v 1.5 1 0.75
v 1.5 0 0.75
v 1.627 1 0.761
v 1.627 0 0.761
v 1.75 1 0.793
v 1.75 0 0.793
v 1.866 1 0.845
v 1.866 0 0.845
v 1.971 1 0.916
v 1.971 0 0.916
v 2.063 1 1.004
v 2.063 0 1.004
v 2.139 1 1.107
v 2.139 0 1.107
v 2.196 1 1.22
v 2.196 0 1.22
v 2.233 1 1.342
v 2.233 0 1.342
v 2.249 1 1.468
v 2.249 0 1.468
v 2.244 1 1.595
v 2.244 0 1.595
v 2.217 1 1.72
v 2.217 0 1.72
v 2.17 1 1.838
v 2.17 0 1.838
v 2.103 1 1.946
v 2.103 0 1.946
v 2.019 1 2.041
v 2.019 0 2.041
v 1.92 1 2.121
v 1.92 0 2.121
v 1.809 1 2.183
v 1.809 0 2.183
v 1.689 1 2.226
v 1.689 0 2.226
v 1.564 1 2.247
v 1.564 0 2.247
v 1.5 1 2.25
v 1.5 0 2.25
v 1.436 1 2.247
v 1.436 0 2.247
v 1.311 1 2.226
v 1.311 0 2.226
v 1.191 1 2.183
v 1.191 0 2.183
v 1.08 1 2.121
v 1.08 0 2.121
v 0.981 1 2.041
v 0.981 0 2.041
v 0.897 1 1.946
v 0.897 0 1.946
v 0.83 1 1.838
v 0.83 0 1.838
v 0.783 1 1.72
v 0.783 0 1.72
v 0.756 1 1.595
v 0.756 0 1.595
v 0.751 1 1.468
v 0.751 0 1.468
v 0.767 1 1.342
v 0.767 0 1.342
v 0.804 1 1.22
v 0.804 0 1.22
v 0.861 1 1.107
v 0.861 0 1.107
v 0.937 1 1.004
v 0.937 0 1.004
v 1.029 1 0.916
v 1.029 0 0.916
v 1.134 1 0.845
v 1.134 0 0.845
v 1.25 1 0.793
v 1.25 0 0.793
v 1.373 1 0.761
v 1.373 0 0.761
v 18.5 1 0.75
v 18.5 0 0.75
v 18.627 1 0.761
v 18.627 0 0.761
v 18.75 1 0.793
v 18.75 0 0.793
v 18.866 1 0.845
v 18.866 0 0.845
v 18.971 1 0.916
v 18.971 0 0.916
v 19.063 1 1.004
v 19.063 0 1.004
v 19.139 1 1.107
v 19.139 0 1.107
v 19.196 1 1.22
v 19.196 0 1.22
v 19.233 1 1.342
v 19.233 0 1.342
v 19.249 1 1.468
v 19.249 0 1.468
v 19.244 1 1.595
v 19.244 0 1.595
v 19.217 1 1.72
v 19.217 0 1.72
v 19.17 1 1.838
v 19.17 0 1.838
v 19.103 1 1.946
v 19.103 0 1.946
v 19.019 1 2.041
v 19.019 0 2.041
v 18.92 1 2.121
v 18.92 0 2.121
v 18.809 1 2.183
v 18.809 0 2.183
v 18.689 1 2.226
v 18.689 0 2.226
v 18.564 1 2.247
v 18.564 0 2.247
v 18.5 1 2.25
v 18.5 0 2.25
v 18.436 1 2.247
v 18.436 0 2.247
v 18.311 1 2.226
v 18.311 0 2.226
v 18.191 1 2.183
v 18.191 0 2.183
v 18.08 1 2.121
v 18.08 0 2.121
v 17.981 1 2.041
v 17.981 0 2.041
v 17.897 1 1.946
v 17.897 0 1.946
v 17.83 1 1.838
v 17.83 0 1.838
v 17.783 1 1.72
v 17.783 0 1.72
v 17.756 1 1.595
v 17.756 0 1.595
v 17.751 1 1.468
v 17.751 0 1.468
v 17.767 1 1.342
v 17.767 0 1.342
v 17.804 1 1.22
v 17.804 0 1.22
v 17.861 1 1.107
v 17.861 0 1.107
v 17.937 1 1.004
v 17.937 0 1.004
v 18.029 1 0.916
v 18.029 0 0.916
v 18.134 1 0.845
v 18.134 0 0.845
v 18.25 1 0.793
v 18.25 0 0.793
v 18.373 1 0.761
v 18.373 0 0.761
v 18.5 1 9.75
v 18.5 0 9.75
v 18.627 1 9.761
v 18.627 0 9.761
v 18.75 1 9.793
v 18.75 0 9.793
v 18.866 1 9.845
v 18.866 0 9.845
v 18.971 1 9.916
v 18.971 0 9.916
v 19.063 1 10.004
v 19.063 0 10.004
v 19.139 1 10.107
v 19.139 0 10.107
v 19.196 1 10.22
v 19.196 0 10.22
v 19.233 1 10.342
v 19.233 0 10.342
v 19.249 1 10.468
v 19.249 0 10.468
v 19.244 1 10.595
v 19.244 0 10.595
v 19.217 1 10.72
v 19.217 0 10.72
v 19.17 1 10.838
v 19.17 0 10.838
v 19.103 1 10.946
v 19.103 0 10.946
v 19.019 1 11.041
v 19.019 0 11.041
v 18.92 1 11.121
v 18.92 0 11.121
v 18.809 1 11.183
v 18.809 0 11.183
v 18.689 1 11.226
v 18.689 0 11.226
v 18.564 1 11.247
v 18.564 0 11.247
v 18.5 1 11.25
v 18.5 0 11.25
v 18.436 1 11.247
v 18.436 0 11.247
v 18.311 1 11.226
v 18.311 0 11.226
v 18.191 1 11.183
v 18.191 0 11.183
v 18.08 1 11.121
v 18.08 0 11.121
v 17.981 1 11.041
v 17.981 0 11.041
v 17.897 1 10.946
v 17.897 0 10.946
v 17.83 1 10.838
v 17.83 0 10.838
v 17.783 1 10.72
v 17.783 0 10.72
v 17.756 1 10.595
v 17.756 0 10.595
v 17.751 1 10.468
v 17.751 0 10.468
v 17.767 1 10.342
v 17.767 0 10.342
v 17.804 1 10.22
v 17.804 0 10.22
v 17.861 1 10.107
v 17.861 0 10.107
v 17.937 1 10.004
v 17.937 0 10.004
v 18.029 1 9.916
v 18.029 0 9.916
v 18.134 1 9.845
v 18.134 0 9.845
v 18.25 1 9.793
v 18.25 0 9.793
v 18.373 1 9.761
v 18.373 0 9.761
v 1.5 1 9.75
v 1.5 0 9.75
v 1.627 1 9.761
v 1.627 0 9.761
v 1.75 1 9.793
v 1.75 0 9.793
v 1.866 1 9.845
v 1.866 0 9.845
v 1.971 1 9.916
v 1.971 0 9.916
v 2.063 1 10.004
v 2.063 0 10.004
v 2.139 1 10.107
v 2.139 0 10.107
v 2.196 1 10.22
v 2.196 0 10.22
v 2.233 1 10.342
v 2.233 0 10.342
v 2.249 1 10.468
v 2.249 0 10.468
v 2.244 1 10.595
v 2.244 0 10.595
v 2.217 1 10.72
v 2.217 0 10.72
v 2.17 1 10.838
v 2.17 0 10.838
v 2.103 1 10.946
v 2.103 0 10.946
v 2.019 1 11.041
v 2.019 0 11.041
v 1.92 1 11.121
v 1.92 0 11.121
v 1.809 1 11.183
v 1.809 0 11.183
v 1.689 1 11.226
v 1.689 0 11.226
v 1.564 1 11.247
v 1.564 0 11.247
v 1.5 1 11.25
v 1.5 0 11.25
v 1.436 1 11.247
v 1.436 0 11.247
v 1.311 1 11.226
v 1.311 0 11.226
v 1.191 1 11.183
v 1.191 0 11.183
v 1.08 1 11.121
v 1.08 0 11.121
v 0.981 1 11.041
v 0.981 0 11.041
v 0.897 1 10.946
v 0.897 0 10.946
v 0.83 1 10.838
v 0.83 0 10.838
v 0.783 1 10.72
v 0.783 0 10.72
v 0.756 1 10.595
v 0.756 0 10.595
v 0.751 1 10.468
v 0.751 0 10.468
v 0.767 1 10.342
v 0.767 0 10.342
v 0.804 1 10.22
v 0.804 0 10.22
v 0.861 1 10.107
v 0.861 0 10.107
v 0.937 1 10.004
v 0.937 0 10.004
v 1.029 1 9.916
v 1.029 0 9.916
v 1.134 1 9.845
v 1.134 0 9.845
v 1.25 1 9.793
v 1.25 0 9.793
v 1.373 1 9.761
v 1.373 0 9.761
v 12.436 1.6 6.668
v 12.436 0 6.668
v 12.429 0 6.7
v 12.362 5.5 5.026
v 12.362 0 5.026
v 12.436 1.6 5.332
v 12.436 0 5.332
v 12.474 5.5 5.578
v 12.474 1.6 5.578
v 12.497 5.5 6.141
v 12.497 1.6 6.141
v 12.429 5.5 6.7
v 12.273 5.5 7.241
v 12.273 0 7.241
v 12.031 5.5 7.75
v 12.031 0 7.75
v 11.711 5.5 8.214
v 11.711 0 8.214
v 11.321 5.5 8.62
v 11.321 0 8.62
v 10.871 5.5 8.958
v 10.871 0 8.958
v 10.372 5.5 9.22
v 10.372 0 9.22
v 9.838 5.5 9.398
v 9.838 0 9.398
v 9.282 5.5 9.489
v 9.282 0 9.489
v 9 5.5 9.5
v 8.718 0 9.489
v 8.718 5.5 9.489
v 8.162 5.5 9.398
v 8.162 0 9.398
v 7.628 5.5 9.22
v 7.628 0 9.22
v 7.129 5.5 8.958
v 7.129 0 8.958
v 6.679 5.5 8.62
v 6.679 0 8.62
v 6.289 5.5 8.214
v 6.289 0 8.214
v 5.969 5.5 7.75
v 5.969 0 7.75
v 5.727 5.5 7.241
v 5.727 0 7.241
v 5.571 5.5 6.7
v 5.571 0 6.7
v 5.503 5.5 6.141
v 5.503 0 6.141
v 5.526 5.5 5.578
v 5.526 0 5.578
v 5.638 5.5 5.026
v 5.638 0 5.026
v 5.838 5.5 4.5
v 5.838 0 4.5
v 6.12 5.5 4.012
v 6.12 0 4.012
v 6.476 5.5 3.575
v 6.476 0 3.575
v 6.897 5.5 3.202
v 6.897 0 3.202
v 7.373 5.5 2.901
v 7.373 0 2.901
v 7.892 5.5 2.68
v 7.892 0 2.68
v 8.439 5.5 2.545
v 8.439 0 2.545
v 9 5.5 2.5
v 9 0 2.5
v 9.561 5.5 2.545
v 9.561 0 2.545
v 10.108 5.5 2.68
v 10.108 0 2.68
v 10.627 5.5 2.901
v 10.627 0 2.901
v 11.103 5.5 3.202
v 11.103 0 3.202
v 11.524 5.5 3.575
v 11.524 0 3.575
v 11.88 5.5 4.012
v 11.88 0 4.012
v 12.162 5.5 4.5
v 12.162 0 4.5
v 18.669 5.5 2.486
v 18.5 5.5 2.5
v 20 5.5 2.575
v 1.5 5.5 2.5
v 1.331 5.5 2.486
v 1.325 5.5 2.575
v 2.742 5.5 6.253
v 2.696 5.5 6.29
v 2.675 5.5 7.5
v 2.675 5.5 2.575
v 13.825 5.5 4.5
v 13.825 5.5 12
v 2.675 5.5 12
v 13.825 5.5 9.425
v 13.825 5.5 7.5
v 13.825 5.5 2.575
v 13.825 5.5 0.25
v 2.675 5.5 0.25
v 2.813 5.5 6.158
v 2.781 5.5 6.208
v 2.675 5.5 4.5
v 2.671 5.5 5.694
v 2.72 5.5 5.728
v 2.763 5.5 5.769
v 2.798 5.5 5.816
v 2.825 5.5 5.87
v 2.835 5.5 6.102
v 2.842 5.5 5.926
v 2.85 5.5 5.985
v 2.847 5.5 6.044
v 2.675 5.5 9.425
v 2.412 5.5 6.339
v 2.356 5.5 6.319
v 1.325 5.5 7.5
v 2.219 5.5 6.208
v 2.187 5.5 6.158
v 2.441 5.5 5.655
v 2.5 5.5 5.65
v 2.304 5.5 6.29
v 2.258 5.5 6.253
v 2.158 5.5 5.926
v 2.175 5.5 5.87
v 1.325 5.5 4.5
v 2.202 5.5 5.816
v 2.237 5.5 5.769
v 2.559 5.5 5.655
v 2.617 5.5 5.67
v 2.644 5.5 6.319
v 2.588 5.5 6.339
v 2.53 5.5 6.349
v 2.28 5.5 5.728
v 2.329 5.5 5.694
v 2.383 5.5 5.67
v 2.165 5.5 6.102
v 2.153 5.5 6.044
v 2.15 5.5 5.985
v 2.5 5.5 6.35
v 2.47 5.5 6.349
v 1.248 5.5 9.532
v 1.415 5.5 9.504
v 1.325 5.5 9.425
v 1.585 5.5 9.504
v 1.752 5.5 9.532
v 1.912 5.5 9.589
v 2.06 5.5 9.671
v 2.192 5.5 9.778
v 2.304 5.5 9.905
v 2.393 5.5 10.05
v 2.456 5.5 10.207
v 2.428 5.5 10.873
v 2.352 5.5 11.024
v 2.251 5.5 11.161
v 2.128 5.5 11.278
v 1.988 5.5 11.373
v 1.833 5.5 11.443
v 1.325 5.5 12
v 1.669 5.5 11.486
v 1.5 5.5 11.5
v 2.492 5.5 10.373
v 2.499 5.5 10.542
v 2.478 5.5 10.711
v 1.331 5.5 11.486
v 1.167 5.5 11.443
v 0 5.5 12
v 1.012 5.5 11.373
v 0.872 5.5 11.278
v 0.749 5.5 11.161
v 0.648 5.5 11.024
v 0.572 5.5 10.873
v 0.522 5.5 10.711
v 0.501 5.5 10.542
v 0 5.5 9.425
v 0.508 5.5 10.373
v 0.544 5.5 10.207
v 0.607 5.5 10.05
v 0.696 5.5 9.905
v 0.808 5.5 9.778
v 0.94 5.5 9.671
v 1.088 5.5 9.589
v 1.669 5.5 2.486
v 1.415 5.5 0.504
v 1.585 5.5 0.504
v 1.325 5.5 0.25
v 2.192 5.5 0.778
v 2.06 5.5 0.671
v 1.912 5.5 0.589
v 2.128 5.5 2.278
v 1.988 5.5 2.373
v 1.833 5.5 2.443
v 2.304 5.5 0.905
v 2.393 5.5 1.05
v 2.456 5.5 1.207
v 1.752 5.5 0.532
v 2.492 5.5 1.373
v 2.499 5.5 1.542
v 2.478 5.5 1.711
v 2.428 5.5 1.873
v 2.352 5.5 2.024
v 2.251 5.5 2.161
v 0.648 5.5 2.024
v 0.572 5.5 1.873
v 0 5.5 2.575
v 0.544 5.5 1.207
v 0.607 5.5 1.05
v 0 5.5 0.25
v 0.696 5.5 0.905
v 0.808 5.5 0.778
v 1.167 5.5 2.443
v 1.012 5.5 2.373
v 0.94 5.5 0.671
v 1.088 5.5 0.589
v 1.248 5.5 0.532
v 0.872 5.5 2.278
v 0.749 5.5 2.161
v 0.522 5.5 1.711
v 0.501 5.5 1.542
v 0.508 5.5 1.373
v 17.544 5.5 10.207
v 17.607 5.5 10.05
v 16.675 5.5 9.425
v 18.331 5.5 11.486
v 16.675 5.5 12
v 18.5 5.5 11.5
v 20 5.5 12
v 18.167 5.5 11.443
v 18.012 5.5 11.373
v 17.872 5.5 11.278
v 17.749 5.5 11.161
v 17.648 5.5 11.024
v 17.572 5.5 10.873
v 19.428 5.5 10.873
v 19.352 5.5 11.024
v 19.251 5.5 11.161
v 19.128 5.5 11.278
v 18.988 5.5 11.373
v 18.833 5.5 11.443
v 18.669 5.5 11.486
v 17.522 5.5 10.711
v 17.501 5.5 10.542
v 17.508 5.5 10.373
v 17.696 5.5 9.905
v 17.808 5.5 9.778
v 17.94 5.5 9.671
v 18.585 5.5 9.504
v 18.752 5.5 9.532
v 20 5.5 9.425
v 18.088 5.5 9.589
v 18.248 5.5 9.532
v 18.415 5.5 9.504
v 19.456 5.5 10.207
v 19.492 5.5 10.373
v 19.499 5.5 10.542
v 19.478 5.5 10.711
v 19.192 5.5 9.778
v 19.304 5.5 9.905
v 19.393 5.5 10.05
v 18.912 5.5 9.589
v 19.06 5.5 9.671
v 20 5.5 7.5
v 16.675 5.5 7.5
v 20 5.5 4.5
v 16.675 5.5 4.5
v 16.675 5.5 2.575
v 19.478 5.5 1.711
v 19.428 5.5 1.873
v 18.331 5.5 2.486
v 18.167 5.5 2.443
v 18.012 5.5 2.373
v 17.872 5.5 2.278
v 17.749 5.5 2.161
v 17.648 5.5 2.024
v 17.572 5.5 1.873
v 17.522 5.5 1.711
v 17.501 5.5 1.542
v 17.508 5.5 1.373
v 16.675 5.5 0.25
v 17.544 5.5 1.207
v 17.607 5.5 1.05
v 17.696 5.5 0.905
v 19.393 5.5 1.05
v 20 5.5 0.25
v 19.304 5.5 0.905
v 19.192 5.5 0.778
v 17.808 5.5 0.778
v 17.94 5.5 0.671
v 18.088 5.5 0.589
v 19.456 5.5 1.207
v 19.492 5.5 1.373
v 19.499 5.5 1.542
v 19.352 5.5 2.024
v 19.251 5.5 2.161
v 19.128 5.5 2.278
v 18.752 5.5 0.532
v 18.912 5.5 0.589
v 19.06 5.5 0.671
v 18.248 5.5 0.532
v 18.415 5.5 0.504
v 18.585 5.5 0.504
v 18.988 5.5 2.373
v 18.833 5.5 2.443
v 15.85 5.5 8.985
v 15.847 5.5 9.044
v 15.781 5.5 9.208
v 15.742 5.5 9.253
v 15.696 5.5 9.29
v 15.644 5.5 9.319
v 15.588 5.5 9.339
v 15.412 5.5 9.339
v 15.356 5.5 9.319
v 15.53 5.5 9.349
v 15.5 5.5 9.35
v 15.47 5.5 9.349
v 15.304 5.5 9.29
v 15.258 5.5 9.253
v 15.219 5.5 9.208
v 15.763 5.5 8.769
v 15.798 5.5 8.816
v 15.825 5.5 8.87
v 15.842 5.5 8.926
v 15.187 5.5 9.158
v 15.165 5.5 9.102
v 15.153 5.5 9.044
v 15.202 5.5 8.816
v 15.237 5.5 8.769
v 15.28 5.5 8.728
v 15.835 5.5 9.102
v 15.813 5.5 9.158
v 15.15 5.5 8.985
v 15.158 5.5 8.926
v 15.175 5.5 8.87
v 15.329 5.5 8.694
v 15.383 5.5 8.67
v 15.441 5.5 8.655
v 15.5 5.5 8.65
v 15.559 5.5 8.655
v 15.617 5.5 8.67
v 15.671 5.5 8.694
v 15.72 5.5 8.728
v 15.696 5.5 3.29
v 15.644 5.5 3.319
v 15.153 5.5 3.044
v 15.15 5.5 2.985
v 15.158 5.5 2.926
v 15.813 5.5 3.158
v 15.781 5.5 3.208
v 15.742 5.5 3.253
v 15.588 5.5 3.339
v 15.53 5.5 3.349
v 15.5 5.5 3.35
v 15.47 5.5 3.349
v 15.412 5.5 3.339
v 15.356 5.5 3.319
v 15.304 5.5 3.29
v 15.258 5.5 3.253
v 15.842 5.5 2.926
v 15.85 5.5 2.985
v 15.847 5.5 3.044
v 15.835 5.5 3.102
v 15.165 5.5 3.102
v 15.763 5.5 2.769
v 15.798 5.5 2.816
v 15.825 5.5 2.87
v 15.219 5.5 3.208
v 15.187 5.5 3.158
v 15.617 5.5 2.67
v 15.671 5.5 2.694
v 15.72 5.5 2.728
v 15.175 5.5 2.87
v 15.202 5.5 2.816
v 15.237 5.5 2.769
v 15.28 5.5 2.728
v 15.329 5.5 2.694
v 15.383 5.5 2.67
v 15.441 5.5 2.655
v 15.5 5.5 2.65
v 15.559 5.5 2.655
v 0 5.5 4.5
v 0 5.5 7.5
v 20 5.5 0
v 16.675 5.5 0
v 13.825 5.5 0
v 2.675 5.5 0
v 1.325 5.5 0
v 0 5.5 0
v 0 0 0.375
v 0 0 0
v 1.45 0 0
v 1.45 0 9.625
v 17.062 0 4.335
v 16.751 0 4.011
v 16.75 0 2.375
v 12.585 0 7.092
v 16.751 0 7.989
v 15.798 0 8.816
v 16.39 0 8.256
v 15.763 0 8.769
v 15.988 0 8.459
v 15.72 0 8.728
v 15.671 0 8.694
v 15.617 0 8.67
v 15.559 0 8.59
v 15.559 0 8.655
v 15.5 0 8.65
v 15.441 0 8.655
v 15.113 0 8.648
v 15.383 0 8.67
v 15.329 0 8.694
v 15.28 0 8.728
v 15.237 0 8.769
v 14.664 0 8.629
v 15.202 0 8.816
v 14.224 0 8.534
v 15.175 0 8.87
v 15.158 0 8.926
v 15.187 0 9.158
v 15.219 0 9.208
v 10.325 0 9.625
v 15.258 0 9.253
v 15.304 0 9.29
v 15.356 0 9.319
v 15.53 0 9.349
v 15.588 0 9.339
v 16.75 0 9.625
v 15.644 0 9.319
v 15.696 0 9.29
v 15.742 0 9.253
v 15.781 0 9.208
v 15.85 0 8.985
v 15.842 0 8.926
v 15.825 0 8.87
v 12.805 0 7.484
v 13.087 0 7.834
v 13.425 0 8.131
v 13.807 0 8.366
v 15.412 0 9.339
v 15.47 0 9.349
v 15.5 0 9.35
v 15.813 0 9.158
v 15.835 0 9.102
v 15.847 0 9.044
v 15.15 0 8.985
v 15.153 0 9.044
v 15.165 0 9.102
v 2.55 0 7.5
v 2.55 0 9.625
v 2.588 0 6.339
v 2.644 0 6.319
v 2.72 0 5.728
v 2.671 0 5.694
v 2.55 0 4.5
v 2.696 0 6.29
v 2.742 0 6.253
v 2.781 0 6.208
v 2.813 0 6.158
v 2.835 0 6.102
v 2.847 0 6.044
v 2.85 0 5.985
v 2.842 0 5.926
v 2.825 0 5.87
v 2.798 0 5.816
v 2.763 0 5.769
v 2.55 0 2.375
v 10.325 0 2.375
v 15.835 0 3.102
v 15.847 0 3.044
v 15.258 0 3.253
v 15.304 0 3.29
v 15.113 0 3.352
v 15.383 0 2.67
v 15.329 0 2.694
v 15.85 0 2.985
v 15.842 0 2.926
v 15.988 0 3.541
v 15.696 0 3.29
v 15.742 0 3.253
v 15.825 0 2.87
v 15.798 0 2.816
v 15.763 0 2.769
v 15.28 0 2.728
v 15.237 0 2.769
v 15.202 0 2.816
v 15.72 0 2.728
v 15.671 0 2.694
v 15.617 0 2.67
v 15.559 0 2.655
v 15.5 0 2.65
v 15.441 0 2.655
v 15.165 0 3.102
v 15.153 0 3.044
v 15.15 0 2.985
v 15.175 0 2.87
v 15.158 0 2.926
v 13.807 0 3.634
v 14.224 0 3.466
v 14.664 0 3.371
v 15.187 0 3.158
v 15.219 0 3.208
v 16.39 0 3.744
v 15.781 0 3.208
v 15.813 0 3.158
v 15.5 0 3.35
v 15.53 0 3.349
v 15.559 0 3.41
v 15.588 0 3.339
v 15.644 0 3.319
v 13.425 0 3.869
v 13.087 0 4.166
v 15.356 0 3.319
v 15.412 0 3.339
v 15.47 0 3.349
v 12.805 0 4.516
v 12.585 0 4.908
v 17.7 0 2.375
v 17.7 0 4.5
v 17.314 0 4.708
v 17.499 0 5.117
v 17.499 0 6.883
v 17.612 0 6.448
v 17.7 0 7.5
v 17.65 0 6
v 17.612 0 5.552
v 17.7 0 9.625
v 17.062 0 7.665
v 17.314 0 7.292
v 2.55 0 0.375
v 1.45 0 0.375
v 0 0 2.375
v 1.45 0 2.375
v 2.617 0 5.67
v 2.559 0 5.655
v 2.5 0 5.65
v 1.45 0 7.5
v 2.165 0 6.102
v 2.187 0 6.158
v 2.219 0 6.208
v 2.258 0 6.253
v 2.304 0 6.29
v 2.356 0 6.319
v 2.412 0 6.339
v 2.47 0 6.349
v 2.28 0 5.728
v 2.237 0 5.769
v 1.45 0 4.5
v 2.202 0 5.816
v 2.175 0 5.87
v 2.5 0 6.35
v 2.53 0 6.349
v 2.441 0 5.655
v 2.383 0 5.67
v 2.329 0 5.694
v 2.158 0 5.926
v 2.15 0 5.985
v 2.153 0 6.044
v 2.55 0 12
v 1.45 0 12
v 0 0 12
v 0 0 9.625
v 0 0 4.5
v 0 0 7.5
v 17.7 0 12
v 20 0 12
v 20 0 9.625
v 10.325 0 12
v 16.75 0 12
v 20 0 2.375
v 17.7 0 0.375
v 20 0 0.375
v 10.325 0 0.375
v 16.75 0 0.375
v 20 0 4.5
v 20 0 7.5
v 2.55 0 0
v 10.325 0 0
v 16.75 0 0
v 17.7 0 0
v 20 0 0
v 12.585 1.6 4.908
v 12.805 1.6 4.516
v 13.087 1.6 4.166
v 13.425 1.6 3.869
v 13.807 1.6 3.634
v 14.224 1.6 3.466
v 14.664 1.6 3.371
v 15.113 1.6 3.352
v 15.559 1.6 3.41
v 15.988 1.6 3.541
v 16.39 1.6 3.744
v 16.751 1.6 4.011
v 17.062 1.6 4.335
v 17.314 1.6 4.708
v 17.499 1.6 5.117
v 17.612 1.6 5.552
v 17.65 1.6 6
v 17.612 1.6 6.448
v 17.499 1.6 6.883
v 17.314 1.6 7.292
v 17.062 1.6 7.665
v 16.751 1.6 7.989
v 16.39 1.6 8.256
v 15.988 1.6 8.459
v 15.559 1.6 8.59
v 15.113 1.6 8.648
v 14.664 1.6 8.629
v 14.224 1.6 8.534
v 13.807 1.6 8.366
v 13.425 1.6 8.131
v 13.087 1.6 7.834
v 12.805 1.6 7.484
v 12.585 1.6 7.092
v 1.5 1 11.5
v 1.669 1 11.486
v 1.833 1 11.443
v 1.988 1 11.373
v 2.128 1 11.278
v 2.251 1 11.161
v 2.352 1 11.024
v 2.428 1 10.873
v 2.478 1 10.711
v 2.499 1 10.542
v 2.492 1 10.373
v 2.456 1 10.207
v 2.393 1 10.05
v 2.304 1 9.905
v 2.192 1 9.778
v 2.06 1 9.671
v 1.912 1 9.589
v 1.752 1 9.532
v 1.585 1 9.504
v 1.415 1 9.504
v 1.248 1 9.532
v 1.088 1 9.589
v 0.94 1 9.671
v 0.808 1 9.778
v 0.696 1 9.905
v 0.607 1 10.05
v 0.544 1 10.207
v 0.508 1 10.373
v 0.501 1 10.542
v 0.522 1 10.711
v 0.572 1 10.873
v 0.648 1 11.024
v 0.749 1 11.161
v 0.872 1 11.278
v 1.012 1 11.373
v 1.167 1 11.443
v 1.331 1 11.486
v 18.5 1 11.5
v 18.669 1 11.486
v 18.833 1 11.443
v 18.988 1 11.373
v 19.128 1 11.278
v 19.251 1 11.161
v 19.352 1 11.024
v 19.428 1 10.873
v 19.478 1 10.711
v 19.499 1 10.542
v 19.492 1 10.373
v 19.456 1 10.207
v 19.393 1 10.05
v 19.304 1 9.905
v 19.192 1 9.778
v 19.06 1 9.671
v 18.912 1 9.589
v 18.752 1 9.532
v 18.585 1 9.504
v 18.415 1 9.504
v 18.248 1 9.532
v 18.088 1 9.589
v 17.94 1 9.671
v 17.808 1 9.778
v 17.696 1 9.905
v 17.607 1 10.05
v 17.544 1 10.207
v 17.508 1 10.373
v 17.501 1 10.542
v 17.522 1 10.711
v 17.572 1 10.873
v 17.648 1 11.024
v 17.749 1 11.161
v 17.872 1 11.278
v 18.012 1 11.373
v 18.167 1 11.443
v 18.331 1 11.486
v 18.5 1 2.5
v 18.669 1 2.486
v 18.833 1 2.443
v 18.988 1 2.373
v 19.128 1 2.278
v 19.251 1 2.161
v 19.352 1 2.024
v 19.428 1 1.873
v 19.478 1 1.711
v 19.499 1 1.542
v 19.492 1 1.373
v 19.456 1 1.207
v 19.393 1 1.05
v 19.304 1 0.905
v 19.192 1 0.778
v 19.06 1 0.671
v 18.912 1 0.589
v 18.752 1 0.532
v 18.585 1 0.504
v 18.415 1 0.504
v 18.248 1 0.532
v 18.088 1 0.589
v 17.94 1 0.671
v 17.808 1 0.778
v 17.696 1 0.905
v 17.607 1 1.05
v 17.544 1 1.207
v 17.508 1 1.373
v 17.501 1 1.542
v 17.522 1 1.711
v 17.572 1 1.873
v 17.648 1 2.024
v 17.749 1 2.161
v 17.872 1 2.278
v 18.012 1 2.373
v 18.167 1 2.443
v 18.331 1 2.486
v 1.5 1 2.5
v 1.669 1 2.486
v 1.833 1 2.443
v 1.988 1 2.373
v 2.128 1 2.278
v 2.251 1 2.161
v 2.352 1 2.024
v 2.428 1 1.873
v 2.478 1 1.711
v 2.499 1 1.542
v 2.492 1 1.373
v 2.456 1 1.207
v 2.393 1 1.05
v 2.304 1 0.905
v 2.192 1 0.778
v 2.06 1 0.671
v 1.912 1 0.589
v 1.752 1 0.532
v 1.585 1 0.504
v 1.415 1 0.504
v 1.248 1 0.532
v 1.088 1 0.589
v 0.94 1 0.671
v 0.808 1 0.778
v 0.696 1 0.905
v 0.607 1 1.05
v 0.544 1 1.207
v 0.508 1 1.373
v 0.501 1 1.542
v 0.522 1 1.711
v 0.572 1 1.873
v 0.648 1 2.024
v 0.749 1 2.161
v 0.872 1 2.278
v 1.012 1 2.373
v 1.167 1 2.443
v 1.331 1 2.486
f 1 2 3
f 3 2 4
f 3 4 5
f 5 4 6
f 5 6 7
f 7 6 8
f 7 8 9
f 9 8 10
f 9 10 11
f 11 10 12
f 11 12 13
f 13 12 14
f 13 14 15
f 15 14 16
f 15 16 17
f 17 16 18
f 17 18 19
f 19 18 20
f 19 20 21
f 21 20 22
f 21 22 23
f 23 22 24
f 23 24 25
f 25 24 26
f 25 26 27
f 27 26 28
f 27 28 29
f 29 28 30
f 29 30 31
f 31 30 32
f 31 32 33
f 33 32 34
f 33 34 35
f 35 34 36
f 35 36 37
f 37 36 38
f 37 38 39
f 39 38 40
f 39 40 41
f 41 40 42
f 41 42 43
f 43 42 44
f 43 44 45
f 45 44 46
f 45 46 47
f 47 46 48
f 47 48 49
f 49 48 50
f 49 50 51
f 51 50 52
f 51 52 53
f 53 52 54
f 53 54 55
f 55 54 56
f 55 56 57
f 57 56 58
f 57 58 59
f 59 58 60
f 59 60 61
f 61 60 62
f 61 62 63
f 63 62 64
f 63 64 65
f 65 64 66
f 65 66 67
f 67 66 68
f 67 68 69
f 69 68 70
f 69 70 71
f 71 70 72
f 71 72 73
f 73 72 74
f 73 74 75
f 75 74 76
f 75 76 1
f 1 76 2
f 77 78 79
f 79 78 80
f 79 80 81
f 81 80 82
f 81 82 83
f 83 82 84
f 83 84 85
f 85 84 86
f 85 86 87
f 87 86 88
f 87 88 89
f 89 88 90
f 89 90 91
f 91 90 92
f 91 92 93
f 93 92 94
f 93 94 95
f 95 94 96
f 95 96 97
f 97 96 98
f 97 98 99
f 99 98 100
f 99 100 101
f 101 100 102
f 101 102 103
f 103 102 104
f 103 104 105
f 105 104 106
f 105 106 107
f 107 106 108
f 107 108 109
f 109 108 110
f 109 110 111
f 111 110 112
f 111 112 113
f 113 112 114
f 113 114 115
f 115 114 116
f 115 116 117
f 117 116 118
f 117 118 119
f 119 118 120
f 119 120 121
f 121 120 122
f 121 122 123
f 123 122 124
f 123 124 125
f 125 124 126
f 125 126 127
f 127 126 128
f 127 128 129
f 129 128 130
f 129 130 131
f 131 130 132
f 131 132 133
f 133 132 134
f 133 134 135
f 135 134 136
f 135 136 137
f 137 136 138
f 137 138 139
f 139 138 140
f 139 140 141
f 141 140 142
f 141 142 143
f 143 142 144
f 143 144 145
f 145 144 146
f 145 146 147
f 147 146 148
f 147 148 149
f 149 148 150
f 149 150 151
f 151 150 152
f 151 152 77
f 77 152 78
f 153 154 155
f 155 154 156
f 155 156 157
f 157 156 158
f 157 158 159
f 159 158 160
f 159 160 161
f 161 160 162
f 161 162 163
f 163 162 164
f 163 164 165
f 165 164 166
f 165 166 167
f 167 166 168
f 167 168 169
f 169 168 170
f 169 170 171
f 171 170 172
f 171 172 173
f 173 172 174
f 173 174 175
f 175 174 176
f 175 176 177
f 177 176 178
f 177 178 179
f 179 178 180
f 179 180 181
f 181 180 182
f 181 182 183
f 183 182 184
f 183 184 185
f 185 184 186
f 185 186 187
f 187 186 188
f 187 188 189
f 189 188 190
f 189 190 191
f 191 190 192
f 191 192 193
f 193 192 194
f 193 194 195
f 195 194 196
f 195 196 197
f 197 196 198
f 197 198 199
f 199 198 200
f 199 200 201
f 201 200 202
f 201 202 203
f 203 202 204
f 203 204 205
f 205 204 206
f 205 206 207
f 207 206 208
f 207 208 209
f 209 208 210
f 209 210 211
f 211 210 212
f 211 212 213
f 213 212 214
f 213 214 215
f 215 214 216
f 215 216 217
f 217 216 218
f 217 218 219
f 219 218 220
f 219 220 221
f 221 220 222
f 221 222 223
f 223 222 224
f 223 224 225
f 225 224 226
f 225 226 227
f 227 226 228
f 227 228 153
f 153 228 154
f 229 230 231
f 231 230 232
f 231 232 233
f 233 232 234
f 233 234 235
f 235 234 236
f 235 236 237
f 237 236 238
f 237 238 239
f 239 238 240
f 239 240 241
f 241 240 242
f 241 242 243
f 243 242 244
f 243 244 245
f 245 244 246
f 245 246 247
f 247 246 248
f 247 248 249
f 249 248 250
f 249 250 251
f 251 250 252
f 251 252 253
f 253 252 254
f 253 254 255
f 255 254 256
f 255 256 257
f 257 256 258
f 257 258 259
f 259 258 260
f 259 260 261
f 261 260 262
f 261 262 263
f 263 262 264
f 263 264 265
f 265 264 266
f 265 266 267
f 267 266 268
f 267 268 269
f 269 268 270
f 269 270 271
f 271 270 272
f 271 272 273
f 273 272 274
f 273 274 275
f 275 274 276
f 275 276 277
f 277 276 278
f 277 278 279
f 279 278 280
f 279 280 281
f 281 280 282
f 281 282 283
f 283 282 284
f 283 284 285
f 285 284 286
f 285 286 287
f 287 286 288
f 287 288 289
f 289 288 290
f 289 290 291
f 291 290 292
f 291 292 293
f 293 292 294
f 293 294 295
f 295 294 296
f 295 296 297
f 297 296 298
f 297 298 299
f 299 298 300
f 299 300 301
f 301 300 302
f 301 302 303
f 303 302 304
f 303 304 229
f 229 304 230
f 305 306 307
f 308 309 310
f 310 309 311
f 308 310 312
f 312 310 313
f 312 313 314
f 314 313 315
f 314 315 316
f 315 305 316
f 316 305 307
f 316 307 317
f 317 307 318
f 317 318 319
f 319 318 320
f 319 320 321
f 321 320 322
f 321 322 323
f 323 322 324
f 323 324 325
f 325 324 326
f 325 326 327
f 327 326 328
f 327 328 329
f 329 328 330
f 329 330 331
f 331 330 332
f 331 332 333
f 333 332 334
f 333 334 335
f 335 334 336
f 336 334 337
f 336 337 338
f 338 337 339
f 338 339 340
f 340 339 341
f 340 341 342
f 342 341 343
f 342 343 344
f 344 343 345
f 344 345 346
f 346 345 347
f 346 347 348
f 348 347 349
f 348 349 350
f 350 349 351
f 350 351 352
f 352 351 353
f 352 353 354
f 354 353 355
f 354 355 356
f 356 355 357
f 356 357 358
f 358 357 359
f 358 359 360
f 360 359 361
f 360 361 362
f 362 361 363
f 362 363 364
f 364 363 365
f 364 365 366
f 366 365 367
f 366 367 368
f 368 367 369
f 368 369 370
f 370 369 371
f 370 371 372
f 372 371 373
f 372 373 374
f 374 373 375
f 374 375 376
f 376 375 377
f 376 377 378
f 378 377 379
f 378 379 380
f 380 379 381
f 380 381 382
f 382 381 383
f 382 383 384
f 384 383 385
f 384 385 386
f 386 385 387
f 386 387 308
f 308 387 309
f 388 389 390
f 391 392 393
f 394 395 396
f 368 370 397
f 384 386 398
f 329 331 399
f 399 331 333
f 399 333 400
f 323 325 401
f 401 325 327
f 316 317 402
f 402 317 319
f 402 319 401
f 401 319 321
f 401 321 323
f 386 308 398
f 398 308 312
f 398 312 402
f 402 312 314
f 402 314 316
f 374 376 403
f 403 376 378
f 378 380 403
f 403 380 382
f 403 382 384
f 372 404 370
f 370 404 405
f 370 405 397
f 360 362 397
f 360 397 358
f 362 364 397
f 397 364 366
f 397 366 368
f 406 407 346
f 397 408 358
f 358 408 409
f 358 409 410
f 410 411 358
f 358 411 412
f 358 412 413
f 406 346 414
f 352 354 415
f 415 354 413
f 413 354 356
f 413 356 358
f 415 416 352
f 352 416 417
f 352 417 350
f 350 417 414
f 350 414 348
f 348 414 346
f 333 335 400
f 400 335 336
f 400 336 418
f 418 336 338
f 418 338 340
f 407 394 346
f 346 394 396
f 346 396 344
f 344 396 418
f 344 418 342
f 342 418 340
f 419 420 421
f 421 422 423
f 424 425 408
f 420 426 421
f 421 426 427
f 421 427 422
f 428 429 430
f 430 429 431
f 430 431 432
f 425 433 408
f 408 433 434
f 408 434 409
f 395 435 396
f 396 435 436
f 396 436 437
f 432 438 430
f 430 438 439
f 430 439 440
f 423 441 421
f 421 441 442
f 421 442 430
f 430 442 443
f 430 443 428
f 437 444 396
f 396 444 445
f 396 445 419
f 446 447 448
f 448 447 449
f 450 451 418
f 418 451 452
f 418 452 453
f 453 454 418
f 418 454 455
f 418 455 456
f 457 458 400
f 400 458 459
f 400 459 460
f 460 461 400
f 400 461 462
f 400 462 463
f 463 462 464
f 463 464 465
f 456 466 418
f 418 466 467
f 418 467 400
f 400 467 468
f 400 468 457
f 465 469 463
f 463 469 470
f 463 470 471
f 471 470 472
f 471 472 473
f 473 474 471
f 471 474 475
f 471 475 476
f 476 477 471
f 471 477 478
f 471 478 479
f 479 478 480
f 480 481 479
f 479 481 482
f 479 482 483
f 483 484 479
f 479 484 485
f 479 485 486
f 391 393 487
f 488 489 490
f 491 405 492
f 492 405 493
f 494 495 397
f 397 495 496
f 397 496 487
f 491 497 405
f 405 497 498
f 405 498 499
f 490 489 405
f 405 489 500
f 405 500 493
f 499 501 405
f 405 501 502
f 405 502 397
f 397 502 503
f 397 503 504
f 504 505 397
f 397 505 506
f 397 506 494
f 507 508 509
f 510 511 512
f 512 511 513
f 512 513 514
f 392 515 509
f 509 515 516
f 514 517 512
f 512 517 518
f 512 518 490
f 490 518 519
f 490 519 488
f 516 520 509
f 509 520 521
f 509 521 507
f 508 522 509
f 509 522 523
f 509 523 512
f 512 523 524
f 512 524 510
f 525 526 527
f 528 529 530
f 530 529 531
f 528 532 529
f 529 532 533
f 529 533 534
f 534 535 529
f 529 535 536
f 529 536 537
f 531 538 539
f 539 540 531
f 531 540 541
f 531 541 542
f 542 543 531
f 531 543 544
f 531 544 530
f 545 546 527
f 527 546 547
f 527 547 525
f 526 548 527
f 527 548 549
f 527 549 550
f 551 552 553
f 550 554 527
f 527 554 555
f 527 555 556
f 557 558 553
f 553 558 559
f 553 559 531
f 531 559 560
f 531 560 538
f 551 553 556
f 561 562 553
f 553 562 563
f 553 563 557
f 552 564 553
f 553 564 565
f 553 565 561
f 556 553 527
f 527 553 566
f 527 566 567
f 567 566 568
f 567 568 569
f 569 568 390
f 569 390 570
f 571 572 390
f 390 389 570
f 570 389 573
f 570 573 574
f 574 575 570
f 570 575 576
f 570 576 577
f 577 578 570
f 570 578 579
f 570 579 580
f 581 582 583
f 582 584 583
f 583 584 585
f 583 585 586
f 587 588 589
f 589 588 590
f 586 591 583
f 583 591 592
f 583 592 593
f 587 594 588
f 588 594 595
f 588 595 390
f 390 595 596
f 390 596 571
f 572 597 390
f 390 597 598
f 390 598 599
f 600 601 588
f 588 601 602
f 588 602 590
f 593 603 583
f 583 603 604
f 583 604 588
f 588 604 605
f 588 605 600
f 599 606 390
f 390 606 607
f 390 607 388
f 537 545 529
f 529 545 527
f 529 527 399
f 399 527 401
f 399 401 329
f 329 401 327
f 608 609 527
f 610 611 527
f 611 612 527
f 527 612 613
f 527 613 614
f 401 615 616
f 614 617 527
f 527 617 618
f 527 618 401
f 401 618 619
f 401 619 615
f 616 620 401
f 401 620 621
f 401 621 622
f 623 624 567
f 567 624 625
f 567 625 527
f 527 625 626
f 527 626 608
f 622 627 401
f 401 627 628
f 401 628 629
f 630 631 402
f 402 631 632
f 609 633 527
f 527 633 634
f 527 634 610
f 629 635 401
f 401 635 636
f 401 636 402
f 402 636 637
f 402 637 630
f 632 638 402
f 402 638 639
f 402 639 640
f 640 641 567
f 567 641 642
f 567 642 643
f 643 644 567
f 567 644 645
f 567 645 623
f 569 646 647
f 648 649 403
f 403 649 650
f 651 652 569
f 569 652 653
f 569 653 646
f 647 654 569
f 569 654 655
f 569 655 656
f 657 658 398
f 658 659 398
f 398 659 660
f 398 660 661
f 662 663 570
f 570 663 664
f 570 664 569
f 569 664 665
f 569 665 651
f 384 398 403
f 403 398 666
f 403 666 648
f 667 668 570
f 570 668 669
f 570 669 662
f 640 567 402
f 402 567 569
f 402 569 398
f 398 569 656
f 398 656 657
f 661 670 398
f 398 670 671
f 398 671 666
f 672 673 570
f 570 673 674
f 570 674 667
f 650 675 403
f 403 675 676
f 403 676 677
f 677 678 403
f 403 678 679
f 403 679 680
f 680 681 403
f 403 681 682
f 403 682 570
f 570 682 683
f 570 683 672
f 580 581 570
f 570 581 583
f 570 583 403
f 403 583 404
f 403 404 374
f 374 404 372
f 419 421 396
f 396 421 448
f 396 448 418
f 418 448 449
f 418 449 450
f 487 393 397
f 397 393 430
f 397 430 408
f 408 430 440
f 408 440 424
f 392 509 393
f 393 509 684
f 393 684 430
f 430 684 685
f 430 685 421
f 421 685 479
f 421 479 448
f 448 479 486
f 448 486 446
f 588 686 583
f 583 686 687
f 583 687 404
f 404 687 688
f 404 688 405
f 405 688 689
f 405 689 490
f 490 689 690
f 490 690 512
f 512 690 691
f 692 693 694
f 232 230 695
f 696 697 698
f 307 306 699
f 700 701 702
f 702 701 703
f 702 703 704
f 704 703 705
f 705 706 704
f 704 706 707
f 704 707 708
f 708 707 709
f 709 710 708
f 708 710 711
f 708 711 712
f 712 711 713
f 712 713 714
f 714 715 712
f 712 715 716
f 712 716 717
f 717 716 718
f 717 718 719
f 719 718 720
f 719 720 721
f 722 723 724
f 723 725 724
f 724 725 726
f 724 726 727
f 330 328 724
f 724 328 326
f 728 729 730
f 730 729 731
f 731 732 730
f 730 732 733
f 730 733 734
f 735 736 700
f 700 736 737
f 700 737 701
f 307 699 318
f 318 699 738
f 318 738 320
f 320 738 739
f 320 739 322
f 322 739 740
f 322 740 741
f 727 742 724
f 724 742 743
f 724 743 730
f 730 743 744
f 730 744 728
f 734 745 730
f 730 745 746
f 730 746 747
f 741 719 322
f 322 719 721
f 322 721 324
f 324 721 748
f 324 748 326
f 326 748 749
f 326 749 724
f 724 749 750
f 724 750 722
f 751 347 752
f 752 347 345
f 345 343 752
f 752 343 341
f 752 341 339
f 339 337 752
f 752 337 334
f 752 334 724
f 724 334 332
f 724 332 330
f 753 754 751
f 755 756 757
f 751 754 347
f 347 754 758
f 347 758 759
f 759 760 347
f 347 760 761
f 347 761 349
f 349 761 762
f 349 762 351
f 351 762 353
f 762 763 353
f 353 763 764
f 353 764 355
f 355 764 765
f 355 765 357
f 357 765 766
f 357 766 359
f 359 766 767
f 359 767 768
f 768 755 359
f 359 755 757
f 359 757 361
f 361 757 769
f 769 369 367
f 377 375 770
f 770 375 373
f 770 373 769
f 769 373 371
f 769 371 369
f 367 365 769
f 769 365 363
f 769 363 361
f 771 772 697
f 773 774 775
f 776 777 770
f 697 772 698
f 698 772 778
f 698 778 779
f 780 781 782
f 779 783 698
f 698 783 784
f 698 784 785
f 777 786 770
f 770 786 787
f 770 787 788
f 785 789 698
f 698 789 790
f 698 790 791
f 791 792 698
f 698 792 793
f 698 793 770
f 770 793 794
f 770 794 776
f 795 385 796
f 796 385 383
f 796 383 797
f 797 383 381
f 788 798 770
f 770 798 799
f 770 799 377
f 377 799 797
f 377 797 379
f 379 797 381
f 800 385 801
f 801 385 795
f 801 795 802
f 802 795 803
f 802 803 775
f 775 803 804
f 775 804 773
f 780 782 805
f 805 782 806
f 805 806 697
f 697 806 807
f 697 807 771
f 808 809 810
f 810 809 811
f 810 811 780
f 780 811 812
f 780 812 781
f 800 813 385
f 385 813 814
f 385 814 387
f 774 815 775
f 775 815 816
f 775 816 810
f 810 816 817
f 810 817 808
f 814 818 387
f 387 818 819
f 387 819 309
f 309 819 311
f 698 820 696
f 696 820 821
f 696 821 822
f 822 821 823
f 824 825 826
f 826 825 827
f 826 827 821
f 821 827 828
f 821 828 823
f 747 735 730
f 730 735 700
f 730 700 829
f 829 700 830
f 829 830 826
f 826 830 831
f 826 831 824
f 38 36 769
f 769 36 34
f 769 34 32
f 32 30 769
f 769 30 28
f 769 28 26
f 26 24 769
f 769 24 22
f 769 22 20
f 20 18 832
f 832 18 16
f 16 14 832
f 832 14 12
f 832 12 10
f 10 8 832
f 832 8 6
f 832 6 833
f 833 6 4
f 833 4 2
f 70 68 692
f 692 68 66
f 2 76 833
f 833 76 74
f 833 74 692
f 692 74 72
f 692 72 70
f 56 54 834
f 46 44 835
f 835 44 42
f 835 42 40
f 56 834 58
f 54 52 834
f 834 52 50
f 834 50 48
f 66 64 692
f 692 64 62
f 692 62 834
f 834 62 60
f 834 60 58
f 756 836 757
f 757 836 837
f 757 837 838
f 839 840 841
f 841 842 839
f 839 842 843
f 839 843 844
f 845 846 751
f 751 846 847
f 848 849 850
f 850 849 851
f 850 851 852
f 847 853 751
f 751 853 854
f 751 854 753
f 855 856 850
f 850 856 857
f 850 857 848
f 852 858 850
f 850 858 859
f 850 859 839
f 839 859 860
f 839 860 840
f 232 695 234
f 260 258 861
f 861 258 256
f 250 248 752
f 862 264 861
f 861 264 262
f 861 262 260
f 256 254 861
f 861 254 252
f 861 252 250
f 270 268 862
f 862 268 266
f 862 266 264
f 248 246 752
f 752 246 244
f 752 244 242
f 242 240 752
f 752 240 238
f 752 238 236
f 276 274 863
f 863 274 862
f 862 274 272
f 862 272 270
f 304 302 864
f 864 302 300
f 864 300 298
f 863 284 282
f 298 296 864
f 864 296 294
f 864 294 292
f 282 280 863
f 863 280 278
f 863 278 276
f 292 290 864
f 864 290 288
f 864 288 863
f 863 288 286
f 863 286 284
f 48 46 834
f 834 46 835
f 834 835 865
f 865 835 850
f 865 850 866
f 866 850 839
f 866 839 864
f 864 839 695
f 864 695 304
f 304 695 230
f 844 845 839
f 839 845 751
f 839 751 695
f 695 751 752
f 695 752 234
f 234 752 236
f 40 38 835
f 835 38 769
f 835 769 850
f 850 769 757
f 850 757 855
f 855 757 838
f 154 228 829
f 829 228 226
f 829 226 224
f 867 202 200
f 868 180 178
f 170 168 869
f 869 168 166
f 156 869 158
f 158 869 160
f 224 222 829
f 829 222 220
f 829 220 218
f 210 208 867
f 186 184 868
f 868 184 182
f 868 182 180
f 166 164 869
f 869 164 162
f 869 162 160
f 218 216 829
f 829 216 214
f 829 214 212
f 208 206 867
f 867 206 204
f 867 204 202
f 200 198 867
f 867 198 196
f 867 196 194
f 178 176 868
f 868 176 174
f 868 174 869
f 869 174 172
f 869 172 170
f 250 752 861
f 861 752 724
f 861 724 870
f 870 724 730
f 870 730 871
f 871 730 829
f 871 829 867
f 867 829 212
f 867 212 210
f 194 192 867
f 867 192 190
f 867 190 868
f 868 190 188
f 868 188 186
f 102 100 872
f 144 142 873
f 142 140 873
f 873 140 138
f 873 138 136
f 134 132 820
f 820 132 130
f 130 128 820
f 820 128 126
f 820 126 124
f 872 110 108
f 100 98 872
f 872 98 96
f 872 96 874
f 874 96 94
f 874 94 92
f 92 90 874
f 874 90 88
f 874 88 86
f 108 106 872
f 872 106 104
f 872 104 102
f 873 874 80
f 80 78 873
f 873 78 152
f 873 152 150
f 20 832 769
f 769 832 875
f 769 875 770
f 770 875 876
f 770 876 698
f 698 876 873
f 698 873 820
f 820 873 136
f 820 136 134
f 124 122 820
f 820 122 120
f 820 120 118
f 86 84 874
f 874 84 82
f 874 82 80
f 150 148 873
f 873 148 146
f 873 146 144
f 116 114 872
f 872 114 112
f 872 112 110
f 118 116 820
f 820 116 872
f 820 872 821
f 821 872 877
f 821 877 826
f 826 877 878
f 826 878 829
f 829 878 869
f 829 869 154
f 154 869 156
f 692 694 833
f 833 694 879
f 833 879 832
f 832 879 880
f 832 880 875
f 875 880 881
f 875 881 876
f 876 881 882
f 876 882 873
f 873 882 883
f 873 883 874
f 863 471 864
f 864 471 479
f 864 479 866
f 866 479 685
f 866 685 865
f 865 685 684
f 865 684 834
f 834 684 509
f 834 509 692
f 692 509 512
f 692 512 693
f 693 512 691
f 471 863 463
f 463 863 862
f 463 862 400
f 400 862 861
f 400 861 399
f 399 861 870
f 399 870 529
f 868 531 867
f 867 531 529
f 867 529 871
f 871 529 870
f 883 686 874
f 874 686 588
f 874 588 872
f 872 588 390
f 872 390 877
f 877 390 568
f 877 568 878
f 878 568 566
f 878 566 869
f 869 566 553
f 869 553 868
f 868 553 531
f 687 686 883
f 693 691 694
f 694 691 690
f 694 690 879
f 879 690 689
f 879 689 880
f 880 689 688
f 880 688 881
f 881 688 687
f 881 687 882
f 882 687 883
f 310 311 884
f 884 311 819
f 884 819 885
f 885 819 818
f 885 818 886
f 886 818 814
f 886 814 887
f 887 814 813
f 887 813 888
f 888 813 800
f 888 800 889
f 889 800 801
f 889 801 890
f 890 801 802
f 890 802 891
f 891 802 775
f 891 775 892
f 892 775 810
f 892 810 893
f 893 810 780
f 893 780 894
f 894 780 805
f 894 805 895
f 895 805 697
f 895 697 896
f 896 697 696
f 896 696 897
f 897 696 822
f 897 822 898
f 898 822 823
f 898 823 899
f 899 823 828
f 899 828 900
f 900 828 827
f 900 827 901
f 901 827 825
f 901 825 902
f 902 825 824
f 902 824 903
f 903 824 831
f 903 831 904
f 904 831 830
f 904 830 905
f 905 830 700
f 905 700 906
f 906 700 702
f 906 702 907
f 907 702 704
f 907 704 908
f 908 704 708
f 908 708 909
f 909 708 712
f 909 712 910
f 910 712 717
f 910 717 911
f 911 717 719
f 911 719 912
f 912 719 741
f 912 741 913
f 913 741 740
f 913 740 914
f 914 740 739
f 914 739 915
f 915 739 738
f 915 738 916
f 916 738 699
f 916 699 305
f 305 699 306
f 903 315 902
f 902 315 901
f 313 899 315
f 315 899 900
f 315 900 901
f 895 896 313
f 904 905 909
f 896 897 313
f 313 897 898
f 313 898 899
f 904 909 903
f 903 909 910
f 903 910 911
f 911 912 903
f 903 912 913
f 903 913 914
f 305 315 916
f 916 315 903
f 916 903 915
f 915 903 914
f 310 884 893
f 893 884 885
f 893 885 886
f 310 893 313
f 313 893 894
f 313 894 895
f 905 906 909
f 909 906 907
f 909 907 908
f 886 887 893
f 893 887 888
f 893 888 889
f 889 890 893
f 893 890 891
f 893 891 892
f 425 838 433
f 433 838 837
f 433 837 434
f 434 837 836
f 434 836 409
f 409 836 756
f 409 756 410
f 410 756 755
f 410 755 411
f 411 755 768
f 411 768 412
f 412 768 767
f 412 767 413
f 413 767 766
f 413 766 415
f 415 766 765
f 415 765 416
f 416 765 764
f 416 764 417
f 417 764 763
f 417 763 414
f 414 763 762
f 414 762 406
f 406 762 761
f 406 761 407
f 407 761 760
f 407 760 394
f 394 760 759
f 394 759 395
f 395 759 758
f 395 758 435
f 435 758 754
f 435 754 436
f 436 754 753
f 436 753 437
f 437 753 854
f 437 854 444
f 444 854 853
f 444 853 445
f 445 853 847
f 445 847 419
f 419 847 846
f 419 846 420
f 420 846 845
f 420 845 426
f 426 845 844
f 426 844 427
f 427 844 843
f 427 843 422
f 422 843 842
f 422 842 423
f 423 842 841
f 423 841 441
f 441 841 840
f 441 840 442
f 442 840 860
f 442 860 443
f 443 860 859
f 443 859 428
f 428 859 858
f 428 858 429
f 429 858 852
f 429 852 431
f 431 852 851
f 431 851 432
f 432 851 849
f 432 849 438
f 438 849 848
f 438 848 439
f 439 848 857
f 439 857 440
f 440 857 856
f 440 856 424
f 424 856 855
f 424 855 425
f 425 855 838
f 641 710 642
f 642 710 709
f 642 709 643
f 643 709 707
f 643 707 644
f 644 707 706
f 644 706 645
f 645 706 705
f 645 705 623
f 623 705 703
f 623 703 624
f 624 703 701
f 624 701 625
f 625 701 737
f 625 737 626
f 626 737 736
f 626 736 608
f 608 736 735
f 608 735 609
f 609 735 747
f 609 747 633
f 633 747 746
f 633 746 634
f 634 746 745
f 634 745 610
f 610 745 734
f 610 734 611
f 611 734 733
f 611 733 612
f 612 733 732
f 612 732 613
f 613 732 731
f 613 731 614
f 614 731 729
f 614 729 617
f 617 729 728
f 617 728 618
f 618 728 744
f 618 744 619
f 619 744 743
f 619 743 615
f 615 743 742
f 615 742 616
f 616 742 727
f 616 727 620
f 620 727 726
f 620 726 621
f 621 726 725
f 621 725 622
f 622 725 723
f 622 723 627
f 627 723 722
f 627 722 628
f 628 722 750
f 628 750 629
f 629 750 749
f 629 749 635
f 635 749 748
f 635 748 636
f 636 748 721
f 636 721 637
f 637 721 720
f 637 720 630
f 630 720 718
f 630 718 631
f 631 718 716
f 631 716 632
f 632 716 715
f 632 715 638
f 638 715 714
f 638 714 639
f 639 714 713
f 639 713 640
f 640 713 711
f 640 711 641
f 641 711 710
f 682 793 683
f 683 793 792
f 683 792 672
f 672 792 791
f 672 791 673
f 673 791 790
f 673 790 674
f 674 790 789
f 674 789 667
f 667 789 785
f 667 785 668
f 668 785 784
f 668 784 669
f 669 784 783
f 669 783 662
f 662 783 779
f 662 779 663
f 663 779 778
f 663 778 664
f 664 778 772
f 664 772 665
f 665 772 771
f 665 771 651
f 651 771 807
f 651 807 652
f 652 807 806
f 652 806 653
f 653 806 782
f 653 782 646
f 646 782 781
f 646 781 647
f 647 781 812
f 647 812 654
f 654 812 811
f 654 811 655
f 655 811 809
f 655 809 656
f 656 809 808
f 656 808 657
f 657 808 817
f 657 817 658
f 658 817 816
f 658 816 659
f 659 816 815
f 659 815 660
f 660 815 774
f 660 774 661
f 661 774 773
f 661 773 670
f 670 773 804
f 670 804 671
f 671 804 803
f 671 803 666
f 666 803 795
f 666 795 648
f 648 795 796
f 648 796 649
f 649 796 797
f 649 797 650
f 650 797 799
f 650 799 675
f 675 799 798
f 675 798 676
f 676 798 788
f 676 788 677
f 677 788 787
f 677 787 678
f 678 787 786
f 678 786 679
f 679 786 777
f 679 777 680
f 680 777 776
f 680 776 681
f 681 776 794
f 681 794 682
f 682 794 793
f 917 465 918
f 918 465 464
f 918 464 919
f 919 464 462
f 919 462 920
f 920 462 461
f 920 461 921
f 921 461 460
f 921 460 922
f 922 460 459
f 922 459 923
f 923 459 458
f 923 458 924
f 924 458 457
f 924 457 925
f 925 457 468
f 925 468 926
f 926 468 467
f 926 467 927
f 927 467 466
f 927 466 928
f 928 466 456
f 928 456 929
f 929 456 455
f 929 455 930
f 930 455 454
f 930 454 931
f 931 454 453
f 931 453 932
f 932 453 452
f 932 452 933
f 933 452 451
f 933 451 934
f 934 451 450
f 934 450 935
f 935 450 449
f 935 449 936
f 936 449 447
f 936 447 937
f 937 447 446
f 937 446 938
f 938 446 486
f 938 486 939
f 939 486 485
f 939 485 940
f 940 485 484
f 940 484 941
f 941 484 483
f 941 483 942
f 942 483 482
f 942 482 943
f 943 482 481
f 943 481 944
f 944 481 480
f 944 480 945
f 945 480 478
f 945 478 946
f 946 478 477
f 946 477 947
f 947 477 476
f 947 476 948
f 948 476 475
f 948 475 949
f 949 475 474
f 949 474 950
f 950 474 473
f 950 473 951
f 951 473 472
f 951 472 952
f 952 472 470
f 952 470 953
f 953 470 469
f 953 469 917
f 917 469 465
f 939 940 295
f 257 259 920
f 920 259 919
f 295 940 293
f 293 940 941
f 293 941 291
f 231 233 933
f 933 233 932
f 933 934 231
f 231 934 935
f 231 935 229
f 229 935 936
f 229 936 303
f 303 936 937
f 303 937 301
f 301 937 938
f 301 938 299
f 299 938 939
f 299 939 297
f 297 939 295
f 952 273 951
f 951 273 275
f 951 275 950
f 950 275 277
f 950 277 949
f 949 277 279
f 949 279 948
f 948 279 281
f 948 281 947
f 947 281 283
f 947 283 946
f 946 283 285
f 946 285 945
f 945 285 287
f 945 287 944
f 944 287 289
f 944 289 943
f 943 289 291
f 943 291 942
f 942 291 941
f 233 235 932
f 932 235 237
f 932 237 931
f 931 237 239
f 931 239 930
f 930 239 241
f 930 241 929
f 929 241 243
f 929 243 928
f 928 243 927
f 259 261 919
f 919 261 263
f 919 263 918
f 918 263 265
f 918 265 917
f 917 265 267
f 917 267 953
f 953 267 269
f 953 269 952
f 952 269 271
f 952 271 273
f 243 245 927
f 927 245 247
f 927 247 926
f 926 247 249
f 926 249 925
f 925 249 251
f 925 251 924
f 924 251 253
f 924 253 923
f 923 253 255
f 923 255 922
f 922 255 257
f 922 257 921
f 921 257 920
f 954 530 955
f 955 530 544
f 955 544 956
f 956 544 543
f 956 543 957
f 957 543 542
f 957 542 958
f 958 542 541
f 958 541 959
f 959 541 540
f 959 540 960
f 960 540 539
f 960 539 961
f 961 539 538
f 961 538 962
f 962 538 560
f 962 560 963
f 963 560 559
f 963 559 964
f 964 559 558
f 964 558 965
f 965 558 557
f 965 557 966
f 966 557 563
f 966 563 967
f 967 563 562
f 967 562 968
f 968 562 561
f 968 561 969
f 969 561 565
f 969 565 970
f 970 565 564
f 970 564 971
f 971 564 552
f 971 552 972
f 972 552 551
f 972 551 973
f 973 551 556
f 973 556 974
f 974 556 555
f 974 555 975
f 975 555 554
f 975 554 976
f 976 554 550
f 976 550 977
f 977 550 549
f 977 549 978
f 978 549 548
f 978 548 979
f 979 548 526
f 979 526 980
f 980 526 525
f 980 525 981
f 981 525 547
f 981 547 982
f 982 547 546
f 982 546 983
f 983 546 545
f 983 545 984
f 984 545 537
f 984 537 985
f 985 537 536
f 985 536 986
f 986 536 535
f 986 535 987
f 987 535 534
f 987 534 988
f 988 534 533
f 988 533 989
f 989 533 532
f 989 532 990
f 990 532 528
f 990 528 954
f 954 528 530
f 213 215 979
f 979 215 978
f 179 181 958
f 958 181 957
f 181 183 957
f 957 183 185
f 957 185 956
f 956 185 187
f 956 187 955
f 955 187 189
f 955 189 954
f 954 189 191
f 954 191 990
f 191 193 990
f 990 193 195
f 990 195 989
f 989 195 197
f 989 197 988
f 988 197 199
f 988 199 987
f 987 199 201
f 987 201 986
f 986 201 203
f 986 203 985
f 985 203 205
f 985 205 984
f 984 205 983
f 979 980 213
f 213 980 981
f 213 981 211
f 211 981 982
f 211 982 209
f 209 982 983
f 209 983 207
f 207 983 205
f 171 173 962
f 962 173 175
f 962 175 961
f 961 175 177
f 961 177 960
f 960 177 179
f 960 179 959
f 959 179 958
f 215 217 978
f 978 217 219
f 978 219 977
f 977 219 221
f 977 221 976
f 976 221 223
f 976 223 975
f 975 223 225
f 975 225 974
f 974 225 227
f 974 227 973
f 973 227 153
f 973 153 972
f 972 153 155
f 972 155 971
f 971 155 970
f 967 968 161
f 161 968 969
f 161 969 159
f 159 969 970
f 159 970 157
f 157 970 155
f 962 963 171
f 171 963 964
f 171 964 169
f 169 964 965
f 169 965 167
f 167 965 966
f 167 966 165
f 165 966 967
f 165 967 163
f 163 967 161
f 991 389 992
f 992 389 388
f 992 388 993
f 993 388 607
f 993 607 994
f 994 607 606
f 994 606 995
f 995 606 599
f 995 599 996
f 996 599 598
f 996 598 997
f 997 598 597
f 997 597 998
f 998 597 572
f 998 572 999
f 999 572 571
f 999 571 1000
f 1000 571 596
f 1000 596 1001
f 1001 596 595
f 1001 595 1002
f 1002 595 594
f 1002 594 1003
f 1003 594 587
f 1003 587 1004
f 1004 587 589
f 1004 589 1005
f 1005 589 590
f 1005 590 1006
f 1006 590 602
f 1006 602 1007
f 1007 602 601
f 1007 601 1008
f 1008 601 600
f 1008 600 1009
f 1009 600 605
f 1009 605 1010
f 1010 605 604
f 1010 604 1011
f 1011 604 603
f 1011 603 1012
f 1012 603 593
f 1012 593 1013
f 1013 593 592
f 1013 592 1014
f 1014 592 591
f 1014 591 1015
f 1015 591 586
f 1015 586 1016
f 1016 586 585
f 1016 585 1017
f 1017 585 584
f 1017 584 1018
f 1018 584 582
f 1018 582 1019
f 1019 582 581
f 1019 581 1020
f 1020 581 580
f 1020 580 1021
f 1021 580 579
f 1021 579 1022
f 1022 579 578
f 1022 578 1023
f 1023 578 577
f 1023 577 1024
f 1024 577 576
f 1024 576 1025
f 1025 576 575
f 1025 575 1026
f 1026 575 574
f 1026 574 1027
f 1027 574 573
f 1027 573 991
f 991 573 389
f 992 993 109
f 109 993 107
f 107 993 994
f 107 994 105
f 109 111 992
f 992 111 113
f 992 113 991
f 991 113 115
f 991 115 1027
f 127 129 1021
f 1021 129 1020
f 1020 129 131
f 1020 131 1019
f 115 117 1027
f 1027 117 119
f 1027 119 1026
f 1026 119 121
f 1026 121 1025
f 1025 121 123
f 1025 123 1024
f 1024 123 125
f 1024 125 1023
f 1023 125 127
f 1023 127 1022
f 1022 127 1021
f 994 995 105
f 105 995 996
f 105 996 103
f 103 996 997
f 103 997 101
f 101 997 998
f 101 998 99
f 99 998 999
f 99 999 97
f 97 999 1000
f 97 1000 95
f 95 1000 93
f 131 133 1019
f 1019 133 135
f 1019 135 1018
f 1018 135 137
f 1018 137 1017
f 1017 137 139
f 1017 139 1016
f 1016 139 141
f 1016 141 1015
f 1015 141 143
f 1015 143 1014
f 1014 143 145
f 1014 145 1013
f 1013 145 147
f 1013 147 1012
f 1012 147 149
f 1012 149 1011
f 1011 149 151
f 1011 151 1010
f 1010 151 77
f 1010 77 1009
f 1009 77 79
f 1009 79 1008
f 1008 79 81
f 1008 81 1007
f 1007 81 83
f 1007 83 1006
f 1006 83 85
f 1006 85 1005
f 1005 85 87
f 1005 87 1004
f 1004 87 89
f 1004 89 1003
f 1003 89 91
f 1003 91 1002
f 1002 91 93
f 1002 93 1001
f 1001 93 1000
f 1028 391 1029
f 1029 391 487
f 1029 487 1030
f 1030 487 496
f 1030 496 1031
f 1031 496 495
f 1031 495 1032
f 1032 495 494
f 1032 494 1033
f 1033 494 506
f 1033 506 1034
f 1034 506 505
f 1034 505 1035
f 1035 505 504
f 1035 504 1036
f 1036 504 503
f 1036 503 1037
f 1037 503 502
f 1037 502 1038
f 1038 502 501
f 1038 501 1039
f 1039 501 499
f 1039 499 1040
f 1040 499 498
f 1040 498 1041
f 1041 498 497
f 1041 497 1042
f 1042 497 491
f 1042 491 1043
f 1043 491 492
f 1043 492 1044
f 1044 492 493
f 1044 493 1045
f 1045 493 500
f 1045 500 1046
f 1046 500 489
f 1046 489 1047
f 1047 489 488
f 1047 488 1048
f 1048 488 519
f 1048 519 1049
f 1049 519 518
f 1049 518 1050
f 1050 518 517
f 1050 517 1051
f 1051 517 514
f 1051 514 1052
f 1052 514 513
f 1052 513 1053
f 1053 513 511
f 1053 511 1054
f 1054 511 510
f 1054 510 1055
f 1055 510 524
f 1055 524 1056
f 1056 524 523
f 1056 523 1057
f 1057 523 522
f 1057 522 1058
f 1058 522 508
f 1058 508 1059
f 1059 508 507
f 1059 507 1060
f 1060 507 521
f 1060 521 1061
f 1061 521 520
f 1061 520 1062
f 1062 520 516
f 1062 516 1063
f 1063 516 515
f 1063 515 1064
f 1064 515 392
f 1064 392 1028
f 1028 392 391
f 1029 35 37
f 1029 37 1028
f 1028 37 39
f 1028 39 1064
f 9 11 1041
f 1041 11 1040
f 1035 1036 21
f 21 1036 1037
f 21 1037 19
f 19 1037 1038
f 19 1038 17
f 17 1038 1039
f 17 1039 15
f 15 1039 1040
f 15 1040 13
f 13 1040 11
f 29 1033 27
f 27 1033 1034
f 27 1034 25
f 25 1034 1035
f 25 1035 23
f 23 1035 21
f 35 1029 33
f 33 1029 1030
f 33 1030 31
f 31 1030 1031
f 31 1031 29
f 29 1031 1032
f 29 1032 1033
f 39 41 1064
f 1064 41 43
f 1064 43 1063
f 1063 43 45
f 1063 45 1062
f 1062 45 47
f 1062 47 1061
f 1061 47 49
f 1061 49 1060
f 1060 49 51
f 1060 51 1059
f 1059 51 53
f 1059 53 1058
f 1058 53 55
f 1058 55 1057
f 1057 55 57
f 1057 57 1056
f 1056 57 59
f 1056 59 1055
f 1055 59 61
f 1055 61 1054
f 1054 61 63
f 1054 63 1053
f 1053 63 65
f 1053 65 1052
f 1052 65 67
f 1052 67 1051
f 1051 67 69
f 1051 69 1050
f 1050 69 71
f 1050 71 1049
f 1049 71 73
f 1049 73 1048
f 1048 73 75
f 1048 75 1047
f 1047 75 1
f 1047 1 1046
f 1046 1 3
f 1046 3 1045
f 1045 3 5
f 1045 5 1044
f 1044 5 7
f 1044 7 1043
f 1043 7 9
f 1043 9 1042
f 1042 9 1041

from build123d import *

# Parameters (mm, degrees)
SKETCH_1_W               = 20
SKETCH_1_H               = 12
SKETCH_1_R               = 3.5
EXTRUDE_1_DEPTH          = 5.5
SKETCH_1_17_R            = 2.65
CUT_EXTRUDE_8_DEPTH      = 1.6
CUT_EXTRUDE_3_DEPTH      = 24.963513933
CUT_EXTRUDE_3_DEPTH_BACK = 24.963513933
SKETCH_3_R               = 0.75
SKETCH_3_R_2             = 0.35
CUT_EXTRUDE_START        = 5.5
SKETCH_3_5_R             = 1
CUT_EXTRUDE_4_DEPTH      = 4.5


with BuildPart() as part:
    # 草图1 → 凸台-拉伸1 (new body)
    with BuildSketch(Plane(origin=(0, 0, 0), x_dir=(1, 0, 0), z_dir=(0, 1, 0))):
        with Locations((10, -6)):
            Rectangle(SKETCH_1_W, SKETCH_1_H)
        with Locations(Location((9, -6, 0), (0, 0, 270))):
            Circle(SKETCH_1_R, mode=Mode.SUBTRACT)
    extrude(amount=EXTRUDE_1_DEPTH)

    # 草图1<17> → 切除-拉伸8 (cut)
    with BuildSketch(Plane(origin=(0, 0, 0), x_dir=(1, 0, 0), z_dir=(0, 1, 0))):
        with Locations((15, -6)):
            Circle(SKETCH_1_17_R)
    extrude(amount=CUT_EXTRUDE_8_DEPTH, mode=Mode.SUBTRACT)

    # 草图3 → 切除-拉伸3 (cut, two sides: drawn at the far end of the back side and taken through both)
    with BuildSketch(Plane(origin=(0, 0, 0), x_dir=(1, 0, 0), z_dir=(0, 1, 0)).offset(-CUT_EXTRUDE_3_DEPTH_BACK)):
        with Locations(Location((1.5, -1.5, 0), (0, 0, 270))):
            Circle(SKETCH_3_R)
        with Locations(Location((18.5, -1.5, 0), (0, 0, 270))):
            Circle(SKETCH_3_R)
        with Locations(Location((1.5, -10.5, 0), (0, 0, 270))):
            Circle(SKETCH_3_R)
        with Locations(Location((18.5, -10.5, 0), (0, 0, 270))):
            Circle(SKETCH_3_R)
        with Locations(Location((15.5, -3, 0), (0, 0, 270))):
            Circle(SKETCH_3_R_2)
        with Locations(Location((2.5, -6, 0), (0, 0, 270))):
            Circle(SKETCH_3_R_2)
        with Locations(Location((15.5, -9, 0), (0, 0, 270))):
            Circle(SKETCH_3_R_2)
    extrude(amount=CUT_EXTRUDE_3_DEPTH + CUT_EXTRUDE_3_DEPTH_BACK, mode=Mode.SUBTRACT)

    # 草图3<5> → 切除-拉伸4 (cut)
    with BuildSketch(Plane(origin=(0, 0, 0), x_dir=(1, 0, 0), z_dir=(0, 1, 0)).offset(CUT_EXTRUDE_START)):
        with Locations(Location((1.5, -1.5, 0), (0, 0, 270))):
            Circle(SKETCH_3_5_R)
        with Locations(Location((18.5, -1.5, 0), (0, 0, 270))):
            Circle(SKETCH_3_5_R)
        with Locations(Location((18.5, -10.5, 0), (0, 0, 270))):
            Circle(SKETCH_3_5_R)
        with Locations(Location((1.5, -10.5, 0), (0, 0, 270))):
            Circle(SKETCH_3_5_R)
    extrude(amount=-CUT_EXTRUDE_4_DEPTH, mode=Mode.SUBTRACT)


solid = part.part
